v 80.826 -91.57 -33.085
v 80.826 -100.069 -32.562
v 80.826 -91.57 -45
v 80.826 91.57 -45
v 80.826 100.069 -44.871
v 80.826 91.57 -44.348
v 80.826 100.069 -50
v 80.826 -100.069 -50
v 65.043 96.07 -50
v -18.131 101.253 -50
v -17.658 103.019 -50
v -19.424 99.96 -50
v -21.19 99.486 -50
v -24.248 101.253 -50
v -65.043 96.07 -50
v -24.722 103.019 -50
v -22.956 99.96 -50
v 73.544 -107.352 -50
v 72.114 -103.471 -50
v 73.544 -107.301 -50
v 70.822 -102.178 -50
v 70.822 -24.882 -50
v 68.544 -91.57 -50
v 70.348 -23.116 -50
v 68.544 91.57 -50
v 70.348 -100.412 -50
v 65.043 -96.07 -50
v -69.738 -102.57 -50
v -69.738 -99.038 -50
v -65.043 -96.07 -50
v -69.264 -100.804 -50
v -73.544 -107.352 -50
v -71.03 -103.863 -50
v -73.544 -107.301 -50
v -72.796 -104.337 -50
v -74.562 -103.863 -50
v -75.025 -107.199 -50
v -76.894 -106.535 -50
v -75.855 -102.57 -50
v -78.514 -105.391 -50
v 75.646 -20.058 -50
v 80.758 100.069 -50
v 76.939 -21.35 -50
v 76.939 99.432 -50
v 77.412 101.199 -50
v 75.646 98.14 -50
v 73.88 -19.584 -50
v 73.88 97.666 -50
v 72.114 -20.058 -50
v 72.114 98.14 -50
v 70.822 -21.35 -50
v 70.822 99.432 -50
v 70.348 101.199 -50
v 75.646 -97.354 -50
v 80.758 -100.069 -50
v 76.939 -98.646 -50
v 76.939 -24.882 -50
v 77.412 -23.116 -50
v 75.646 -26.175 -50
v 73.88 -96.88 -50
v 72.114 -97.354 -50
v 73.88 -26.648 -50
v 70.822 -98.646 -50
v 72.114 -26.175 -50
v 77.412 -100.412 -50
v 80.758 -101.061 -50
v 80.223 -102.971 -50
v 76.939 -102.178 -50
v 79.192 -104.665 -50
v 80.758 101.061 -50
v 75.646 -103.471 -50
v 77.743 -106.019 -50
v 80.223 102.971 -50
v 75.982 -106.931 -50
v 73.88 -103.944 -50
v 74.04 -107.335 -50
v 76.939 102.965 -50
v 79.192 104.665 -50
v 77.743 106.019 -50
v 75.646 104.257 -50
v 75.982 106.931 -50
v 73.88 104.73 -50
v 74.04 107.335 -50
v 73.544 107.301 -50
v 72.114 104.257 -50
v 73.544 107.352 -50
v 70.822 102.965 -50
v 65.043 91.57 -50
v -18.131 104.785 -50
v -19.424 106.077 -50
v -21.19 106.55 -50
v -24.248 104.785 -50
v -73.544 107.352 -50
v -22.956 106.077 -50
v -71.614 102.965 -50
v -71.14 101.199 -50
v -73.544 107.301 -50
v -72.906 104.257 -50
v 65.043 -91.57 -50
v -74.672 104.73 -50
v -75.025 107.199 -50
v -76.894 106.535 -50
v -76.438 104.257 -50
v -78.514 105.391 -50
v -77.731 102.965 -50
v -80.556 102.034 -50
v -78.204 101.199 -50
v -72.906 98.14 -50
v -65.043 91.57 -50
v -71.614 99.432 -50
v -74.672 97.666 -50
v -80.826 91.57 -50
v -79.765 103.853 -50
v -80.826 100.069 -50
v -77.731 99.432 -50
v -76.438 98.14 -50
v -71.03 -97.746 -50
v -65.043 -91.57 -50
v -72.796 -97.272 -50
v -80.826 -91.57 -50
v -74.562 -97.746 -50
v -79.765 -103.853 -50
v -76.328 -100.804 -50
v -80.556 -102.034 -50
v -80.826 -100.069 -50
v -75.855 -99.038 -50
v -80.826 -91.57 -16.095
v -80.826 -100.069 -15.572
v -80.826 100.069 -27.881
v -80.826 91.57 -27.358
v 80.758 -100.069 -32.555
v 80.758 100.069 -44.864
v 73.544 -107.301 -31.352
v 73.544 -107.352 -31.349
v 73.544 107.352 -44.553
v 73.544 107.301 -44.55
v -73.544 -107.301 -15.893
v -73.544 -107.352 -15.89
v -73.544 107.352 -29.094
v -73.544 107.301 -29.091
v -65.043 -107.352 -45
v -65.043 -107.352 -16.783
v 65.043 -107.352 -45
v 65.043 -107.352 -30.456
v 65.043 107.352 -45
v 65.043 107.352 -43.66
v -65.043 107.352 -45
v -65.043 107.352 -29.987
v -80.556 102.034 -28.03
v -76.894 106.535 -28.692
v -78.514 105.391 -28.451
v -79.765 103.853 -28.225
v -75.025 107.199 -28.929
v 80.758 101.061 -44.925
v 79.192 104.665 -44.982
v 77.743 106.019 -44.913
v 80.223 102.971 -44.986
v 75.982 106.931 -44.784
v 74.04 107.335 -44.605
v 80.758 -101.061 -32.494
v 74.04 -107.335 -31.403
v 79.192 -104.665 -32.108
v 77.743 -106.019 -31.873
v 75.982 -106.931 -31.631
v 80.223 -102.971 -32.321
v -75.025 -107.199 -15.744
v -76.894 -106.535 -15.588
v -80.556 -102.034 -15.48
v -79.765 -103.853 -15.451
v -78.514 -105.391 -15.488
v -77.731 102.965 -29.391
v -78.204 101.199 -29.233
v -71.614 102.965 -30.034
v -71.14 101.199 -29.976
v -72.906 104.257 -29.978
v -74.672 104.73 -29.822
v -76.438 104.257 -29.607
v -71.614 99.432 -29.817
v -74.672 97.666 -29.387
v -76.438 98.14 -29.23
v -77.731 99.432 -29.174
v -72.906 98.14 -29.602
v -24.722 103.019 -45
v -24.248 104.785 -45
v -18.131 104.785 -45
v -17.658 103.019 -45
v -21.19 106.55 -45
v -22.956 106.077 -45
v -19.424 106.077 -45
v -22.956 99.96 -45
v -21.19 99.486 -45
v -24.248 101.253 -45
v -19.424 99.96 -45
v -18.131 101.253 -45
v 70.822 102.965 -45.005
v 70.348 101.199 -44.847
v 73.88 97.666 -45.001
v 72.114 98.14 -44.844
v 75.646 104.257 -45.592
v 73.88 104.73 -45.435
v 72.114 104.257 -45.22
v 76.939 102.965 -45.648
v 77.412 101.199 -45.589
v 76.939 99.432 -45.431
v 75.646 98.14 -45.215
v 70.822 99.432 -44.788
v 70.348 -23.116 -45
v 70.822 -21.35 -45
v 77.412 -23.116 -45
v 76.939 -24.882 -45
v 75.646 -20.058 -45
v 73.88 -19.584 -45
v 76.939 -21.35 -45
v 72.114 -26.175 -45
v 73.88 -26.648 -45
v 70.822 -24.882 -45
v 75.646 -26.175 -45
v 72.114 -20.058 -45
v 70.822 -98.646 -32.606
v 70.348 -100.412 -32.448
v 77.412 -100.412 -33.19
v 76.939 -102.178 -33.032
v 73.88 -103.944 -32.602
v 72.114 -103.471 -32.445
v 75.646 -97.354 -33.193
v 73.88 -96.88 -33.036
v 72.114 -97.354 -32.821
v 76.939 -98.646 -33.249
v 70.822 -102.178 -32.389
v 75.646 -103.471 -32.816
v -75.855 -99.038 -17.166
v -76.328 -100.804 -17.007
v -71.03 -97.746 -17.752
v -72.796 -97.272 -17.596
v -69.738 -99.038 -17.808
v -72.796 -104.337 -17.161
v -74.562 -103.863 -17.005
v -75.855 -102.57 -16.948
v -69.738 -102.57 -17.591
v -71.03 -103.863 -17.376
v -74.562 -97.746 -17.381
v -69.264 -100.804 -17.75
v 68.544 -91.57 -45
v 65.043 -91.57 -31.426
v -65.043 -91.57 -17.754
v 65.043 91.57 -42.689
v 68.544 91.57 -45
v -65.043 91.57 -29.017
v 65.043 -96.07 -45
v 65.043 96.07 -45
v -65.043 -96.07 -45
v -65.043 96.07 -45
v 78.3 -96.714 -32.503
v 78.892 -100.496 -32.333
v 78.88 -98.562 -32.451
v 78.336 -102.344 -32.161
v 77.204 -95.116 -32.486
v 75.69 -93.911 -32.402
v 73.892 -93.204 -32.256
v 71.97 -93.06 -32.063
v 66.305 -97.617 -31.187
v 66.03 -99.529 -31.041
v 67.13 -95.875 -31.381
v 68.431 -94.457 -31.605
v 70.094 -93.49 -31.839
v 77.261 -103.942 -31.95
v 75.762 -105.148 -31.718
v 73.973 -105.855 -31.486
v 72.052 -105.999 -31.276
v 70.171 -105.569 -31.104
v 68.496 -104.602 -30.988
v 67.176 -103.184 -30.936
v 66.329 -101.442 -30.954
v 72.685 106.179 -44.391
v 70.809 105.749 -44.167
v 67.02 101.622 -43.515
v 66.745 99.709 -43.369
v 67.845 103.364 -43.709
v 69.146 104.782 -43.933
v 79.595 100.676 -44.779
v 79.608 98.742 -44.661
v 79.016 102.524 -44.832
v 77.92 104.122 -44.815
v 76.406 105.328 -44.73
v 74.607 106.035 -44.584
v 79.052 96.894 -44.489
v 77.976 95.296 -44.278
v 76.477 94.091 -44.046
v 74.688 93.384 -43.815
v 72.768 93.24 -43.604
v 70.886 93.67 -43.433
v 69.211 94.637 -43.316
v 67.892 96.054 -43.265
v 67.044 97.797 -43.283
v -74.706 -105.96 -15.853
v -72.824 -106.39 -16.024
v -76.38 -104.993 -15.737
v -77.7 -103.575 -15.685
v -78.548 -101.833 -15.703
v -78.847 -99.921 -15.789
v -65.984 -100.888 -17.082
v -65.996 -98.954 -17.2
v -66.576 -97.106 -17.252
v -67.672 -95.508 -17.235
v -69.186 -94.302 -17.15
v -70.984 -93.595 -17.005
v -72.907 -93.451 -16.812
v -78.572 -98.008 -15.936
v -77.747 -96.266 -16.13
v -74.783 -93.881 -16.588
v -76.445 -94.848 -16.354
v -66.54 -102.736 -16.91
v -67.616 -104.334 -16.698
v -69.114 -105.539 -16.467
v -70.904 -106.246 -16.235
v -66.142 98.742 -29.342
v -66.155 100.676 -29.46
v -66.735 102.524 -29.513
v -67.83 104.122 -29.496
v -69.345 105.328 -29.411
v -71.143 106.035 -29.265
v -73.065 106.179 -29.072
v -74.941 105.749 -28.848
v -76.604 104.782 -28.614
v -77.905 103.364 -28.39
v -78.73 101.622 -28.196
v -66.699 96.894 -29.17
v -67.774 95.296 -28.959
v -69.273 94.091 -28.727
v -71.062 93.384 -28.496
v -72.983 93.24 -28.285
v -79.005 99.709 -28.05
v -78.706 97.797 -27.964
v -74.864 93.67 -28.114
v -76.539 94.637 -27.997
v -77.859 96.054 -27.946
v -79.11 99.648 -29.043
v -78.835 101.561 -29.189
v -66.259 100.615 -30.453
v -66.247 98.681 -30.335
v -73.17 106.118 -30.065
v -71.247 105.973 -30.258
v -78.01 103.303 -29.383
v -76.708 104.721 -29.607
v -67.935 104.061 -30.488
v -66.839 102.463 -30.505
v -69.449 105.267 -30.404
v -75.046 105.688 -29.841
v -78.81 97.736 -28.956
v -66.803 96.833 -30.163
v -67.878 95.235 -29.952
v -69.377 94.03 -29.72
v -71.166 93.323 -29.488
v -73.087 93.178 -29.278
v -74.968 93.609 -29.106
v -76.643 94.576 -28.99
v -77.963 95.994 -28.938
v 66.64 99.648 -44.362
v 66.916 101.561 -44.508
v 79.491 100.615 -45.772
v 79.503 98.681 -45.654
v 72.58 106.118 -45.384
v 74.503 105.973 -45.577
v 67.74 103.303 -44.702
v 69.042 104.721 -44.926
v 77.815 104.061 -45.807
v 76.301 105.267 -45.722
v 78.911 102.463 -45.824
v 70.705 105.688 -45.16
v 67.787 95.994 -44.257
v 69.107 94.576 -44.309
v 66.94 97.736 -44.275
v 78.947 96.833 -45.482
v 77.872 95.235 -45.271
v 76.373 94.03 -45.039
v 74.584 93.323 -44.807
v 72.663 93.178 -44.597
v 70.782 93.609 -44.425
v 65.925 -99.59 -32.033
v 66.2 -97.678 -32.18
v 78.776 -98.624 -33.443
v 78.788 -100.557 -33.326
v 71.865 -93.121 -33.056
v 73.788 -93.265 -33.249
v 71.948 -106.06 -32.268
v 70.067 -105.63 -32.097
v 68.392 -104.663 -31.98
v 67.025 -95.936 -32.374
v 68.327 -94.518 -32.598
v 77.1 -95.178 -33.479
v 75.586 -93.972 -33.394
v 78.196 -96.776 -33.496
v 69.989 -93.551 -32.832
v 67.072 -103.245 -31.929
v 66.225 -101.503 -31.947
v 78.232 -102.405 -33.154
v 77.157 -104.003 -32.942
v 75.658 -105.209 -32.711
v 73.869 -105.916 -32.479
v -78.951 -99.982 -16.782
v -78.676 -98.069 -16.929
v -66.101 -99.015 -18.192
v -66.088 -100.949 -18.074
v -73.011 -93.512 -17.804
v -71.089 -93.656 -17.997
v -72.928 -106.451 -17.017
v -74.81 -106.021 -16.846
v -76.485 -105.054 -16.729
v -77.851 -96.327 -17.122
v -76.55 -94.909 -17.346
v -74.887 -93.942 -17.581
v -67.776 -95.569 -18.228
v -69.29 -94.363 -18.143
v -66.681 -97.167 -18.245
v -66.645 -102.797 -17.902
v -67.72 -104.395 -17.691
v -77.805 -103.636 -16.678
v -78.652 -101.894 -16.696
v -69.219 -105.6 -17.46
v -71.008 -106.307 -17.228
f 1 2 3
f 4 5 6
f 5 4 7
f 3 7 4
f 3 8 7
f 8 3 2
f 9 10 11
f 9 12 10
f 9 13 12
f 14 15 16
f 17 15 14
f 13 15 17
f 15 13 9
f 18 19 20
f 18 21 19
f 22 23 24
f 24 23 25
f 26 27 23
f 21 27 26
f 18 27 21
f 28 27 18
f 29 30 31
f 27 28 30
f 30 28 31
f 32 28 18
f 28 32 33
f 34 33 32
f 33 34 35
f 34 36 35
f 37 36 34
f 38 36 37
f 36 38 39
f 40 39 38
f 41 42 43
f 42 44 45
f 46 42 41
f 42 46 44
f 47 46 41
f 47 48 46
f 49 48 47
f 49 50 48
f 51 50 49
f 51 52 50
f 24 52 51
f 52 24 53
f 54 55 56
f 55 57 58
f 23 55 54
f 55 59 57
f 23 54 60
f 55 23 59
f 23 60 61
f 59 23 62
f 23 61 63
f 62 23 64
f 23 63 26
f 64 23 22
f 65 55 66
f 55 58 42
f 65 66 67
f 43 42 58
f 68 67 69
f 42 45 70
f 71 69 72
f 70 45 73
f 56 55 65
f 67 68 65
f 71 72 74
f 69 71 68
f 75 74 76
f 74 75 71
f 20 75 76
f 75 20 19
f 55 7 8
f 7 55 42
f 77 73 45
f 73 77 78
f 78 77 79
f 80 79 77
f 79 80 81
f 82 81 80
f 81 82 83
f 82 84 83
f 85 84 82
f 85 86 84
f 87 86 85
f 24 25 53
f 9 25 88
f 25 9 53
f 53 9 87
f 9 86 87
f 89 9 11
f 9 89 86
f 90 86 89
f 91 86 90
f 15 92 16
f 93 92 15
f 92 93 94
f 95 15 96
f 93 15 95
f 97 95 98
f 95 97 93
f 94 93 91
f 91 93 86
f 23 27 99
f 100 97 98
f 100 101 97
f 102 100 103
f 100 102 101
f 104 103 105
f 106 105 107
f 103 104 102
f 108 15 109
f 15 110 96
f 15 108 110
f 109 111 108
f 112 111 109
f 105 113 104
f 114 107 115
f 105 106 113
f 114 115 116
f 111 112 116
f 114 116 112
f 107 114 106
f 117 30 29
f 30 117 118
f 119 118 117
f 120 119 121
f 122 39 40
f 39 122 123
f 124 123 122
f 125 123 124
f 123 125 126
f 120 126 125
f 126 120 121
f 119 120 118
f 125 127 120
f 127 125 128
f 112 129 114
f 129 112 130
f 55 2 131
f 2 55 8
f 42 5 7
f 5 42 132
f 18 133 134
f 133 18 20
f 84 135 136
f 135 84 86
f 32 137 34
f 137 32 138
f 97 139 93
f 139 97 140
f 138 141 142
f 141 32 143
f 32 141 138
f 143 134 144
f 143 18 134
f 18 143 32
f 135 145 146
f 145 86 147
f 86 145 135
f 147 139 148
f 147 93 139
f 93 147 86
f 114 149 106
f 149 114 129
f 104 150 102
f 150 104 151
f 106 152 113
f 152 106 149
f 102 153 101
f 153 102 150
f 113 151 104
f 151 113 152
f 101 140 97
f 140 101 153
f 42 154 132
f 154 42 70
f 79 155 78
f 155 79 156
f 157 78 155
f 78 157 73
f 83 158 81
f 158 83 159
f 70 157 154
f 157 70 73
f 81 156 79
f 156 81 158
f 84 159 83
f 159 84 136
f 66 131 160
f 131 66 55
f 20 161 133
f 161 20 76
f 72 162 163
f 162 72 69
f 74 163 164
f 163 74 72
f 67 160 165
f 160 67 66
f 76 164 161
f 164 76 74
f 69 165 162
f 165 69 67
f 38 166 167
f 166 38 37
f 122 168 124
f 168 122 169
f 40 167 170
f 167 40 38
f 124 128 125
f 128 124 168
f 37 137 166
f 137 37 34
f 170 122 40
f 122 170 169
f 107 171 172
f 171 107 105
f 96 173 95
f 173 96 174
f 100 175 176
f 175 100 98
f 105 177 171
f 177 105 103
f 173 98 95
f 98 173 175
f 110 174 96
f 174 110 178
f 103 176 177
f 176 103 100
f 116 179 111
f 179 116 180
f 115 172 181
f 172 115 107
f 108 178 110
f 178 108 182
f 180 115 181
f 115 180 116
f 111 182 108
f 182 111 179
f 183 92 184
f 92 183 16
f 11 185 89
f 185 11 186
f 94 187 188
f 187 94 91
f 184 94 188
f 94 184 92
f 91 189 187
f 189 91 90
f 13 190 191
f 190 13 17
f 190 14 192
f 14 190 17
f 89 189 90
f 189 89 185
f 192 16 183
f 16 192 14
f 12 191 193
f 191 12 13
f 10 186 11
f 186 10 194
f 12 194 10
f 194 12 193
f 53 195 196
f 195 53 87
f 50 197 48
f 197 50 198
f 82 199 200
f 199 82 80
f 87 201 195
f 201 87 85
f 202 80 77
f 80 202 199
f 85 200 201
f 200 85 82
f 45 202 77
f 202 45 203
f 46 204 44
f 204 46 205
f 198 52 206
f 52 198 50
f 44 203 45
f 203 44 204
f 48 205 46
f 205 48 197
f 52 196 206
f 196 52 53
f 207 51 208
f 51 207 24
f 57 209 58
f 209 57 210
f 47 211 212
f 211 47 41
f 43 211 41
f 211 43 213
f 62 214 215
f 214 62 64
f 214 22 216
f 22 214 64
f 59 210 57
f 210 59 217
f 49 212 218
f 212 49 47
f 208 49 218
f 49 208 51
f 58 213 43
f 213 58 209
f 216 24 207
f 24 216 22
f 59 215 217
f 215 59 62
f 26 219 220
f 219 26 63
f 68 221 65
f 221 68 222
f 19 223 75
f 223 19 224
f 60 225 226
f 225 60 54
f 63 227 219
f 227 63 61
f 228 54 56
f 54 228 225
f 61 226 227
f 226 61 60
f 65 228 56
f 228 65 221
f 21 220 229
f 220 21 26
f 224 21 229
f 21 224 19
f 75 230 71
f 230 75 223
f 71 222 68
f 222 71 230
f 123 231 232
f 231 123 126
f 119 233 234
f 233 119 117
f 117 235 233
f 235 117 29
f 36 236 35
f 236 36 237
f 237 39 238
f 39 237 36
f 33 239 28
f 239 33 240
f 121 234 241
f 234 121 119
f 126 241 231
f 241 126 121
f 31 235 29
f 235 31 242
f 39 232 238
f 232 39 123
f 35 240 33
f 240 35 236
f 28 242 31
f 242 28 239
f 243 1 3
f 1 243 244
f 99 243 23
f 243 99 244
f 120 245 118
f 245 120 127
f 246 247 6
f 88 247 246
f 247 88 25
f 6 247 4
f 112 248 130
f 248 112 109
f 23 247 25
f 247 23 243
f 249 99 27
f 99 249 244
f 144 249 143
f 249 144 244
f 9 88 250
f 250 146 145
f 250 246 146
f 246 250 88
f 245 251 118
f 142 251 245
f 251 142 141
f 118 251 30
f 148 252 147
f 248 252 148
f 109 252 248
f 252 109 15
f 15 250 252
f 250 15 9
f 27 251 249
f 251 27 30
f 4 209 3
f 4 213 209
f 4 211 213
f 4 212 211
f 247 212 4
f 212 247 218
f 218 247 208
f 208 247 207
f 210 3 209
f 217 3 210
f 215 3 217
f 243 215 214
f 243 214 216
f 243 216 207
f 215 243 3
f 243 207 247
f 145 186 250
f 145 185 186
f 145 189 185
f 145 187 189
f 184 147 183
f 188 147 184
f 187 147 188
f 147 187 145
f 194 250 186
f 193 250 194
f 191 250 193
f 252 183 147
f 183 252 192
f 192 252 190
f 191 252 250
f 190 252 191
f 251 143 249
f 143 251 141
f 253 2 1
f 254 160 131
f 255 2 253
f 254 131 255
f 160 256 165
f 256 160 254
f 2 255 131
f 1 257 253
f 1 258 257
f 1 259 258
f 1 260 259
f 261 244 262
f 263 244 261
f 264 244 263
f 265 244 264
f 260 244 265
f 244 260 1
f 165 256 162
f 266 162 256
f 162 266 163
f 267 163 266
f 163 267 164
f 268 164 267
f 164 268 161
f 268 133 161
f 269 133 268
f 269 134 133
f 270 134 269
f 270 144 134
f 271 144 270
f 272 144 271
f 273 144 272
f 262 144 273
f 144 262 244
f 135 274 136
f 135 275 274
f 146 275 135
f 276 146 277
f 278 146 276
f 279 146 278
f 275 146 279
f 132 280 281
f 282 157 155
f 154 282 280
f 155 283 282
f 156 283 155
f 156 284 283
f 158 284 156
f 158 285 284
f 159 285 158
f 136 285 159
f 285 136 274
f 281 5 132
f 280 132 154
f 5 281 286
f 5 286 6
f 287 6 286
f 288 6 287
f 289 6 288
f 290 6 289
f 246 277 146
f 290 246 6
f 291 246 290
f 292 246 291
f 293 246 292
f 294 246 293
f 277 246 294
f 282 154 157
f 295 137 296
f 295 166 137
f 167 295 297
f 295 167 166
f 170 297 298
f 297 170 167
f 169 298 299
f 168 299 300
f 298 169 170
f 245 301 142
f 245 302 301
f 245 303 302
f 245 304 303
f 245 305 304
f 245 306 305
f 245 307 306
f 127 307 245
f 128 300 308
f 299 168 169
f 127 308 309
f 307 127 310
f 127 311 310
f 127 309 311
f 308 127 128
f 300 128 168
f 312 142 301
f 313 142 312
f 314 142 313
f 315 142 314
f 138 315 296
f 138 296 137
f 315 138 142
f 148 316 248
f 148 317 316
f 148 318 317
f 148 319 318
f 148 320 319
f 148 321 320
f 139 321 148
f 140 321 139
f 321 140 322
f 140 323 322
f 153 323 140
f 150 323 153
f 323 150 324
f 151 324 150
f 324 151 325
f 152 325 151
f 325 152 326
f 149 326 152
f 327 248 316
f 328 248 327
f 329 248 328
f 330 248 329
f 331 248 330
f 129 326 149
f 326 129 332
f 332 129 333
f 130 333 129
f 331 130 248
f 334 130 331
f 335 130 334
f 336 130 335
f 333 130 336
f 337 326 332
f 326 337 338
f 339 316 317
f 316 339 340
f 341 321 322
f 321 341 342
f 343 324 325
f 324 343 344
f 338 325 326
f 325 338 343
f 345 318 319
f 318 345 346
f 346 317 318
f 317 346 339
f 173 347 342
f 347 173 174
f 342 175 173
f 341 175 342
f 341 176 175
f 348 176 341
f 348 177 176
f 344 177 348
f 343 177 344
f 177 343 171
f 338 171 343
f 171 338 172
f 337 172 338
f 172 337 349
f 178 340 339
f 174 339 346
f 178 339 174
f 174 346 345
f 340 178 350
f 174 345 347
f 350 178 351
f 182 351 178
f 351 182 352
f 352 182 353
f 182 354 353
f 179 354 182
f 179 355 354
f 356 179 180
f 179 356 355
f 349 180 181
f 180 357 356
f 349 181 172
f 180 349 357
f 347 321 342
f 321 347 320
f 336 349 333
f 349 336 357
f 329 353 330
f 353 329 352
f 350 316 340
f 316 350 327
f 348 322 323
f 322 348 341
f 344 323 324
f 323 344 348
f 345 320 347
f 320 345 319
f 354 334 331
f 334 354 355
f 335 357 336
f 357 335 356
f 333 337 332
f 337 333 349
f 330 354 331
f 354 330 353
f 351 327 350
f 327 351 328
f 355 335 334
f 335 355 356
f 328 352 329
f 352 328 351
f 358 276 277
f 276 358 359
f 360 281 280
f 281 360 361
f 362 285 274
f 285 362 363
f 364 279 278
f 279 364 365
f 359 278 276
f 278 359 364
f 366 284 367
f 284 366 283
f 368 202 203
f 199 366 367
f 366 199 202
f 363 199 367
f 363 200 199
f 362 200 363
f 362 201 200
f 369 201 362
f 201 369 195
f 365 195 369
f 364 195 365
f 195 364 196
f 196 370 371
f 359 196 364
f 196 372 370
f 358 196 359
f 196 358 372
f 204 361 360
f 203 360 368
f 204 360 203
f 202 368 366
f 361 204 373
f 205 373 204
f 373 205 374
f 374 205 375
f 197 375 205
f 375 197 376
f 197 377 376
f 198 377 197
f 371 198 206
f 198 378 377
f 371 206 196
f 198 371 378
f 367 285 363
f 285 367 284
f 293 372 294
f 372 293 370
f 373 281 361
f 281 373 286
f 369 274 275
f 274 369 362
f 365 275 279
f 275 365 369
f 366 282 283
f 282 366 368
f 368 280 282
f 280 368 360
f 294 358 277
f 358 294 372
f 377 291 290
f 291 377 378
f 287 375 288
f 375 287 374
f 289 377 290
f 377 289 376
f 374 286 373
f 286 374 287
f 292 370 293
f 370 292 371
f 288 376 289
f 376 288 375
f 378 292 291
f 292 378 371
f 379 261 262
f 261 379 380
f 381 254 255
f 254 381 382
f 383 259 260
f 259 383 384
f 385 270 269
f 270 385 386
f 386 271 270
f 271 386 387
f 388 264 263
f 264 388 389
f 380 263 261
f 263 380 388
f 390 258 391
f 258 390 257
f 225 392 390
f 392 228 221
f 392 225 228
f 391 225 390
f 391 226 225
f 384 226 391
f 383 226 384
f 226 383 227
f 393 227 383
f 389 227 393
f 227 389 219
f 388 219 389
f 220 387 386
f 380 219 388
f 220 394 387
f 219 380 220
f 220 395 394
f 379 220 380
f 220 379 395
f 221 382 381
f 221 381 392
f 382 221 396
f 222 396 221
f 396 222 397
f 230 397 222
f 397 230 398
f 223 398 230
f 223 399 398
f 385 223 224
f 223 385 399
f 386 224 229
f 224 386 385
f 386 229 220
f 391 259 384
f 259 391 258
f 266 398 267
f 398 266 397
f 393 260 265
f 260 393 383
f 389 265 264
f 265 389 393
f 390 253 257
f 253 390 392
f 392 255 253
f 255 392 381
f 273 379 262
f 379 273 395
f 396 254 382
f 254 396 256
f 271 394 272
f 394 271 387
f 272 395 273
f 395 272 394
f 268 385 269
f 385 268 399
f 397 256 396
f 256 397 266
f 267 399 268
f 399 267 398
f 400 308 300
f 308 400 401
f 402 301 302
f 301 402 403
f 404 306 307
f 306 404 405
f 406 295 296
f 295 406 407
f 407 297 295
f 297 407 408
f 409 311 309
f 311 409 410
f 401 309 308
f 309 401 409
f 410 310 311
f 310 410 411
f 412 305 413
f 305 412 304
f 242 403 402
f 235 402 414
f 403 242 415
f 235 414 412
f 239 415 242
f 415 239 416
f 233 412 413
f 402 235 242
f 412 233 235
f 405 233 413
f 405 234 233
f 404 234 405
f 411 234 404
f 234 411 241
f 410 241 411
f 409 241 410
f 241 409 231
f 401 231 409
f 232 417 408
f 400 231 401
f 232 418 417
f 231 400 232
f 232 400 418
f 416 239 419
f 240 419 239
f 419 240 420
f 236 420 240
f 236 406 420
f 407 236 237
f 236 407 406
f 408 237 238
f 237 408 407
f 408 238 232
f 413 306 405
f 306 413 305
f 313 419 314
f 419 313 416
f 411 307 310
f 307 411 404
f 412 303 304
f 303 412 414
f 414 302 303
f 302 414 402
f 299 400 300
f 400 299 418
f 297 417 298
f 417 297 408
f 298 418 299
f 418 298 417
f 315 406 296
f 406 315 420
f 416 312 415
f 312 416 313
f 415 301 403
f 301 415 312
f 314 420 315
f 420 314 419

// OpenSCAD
rotate (a=180.0, v=[0,1,0]) {
  rotate (a=6.0, v=[0,1,0]) {
    rotate (a=3.5, v=[1,0,0]) {
      difference () {
        rotate (a=-3.5, v=[1,0,0]) {
          rotate (a=-6.0, v=[0,1,0]) {
            difference () {
              translate ([0,0,25]) {
                union () {
                  cube([161.65099999999998, 200.139, 50], center=true);
                  cube([147.087, 214.703, 50], center=true);
                  translate ([73.5435,100.0695,0]) {
                    cylinder (h=50, r=7.282, center=true);
                  }
                  translate ([-73.5435,100.0695,0]) {
                    cylinder (h=50, r=7.282, center=true);
                  }
                  translate ([-73.5435,-100.0695,0]) {
                    cylinder (h=50, r=7.282, center=true);
                  }
                  translate ([73.5435,-100.0695,0]) {
                    cylinder (h=50, r=7.282, center=true);
                  }
                }
              }
              translate ([74.6725,101.19850000000001,0]) {
                cylinder (h=250, r=3.532, center=true);
              }
              translate ([21.189500000000002,103.0185,0]) {
                cylinder (h=250, r=3.532, center=true);
              }
              translate ([-73.8805,101.19850000000001,0]) {
                cylinder (h=250, r=3.532, center=true);
              }
              translate ([-73.8805,-23.116499999999988,0]) {
                cylinder (h=250, r=3.532, center=true);
              }
              translate ([6.525499999999994,-26.522499999999994,0]) {
                cylinder (h=250, r=3.532, center=true);
              }
              translate ([-73.8805,-100.41249999999998,0]) {
                cylinder (h=250, r=3.532, center=true);
              }
              translate ([72.7965,-100.80449999999998,0]) {
                cylinder (h=250, r=3.532, center=true);
              }
              translate ([0,0,25]) {
                cube([130.087, 183.139, 60], center=true);
              }
              translate ([0,0,25]) {
                cube([137.087, 183.139, 60], center=true);
              }
              translate ([0,0,25]) {
                cube([130.087, 192.139, 60], center=true);
              }
              translate ([20,0,25]) {
                cube([137.087, 183.139, 60], center=true);
              }
              translate ([0,0,15]) {
                cube([166.65099999999998, 183.139, 60], center=true);
              }
              translate ([0,0,15]) {
                cube([130.087, 219.703, 60], center=true);
              }
            }
          }
        }
        translate ([0,0,-20]) {
          union () {
            cube([1000, 1000, 100], center=true);
            translate ([72.6725,98.19850000000001,0]) {
              translate ([-3.532,3.532,1]) {
                cylinder (h=100, r=6.5, center=true);
              }
            }
            translate ([-73.8805,98.19850000000001,0]) {
              translate ([-3.532,3.532,1]) {
                cylinder (h=100, r=6.5, center=true);
              }
            }
            translate ([-71.8805,-101.41249999999998,0]) {
              translate ([-3.532,3.532,1]) {
                cylinder (h=100, r=6.5, center=true);
              }
            }
            translate ([73.7965,-101.80449999999998,0]) {
              translate ([-3.532,3.532,1]) {
                cylinder (h=100, r=6.5, center=true);
              }
            }
          }
        }
      }
    }
  }
}
